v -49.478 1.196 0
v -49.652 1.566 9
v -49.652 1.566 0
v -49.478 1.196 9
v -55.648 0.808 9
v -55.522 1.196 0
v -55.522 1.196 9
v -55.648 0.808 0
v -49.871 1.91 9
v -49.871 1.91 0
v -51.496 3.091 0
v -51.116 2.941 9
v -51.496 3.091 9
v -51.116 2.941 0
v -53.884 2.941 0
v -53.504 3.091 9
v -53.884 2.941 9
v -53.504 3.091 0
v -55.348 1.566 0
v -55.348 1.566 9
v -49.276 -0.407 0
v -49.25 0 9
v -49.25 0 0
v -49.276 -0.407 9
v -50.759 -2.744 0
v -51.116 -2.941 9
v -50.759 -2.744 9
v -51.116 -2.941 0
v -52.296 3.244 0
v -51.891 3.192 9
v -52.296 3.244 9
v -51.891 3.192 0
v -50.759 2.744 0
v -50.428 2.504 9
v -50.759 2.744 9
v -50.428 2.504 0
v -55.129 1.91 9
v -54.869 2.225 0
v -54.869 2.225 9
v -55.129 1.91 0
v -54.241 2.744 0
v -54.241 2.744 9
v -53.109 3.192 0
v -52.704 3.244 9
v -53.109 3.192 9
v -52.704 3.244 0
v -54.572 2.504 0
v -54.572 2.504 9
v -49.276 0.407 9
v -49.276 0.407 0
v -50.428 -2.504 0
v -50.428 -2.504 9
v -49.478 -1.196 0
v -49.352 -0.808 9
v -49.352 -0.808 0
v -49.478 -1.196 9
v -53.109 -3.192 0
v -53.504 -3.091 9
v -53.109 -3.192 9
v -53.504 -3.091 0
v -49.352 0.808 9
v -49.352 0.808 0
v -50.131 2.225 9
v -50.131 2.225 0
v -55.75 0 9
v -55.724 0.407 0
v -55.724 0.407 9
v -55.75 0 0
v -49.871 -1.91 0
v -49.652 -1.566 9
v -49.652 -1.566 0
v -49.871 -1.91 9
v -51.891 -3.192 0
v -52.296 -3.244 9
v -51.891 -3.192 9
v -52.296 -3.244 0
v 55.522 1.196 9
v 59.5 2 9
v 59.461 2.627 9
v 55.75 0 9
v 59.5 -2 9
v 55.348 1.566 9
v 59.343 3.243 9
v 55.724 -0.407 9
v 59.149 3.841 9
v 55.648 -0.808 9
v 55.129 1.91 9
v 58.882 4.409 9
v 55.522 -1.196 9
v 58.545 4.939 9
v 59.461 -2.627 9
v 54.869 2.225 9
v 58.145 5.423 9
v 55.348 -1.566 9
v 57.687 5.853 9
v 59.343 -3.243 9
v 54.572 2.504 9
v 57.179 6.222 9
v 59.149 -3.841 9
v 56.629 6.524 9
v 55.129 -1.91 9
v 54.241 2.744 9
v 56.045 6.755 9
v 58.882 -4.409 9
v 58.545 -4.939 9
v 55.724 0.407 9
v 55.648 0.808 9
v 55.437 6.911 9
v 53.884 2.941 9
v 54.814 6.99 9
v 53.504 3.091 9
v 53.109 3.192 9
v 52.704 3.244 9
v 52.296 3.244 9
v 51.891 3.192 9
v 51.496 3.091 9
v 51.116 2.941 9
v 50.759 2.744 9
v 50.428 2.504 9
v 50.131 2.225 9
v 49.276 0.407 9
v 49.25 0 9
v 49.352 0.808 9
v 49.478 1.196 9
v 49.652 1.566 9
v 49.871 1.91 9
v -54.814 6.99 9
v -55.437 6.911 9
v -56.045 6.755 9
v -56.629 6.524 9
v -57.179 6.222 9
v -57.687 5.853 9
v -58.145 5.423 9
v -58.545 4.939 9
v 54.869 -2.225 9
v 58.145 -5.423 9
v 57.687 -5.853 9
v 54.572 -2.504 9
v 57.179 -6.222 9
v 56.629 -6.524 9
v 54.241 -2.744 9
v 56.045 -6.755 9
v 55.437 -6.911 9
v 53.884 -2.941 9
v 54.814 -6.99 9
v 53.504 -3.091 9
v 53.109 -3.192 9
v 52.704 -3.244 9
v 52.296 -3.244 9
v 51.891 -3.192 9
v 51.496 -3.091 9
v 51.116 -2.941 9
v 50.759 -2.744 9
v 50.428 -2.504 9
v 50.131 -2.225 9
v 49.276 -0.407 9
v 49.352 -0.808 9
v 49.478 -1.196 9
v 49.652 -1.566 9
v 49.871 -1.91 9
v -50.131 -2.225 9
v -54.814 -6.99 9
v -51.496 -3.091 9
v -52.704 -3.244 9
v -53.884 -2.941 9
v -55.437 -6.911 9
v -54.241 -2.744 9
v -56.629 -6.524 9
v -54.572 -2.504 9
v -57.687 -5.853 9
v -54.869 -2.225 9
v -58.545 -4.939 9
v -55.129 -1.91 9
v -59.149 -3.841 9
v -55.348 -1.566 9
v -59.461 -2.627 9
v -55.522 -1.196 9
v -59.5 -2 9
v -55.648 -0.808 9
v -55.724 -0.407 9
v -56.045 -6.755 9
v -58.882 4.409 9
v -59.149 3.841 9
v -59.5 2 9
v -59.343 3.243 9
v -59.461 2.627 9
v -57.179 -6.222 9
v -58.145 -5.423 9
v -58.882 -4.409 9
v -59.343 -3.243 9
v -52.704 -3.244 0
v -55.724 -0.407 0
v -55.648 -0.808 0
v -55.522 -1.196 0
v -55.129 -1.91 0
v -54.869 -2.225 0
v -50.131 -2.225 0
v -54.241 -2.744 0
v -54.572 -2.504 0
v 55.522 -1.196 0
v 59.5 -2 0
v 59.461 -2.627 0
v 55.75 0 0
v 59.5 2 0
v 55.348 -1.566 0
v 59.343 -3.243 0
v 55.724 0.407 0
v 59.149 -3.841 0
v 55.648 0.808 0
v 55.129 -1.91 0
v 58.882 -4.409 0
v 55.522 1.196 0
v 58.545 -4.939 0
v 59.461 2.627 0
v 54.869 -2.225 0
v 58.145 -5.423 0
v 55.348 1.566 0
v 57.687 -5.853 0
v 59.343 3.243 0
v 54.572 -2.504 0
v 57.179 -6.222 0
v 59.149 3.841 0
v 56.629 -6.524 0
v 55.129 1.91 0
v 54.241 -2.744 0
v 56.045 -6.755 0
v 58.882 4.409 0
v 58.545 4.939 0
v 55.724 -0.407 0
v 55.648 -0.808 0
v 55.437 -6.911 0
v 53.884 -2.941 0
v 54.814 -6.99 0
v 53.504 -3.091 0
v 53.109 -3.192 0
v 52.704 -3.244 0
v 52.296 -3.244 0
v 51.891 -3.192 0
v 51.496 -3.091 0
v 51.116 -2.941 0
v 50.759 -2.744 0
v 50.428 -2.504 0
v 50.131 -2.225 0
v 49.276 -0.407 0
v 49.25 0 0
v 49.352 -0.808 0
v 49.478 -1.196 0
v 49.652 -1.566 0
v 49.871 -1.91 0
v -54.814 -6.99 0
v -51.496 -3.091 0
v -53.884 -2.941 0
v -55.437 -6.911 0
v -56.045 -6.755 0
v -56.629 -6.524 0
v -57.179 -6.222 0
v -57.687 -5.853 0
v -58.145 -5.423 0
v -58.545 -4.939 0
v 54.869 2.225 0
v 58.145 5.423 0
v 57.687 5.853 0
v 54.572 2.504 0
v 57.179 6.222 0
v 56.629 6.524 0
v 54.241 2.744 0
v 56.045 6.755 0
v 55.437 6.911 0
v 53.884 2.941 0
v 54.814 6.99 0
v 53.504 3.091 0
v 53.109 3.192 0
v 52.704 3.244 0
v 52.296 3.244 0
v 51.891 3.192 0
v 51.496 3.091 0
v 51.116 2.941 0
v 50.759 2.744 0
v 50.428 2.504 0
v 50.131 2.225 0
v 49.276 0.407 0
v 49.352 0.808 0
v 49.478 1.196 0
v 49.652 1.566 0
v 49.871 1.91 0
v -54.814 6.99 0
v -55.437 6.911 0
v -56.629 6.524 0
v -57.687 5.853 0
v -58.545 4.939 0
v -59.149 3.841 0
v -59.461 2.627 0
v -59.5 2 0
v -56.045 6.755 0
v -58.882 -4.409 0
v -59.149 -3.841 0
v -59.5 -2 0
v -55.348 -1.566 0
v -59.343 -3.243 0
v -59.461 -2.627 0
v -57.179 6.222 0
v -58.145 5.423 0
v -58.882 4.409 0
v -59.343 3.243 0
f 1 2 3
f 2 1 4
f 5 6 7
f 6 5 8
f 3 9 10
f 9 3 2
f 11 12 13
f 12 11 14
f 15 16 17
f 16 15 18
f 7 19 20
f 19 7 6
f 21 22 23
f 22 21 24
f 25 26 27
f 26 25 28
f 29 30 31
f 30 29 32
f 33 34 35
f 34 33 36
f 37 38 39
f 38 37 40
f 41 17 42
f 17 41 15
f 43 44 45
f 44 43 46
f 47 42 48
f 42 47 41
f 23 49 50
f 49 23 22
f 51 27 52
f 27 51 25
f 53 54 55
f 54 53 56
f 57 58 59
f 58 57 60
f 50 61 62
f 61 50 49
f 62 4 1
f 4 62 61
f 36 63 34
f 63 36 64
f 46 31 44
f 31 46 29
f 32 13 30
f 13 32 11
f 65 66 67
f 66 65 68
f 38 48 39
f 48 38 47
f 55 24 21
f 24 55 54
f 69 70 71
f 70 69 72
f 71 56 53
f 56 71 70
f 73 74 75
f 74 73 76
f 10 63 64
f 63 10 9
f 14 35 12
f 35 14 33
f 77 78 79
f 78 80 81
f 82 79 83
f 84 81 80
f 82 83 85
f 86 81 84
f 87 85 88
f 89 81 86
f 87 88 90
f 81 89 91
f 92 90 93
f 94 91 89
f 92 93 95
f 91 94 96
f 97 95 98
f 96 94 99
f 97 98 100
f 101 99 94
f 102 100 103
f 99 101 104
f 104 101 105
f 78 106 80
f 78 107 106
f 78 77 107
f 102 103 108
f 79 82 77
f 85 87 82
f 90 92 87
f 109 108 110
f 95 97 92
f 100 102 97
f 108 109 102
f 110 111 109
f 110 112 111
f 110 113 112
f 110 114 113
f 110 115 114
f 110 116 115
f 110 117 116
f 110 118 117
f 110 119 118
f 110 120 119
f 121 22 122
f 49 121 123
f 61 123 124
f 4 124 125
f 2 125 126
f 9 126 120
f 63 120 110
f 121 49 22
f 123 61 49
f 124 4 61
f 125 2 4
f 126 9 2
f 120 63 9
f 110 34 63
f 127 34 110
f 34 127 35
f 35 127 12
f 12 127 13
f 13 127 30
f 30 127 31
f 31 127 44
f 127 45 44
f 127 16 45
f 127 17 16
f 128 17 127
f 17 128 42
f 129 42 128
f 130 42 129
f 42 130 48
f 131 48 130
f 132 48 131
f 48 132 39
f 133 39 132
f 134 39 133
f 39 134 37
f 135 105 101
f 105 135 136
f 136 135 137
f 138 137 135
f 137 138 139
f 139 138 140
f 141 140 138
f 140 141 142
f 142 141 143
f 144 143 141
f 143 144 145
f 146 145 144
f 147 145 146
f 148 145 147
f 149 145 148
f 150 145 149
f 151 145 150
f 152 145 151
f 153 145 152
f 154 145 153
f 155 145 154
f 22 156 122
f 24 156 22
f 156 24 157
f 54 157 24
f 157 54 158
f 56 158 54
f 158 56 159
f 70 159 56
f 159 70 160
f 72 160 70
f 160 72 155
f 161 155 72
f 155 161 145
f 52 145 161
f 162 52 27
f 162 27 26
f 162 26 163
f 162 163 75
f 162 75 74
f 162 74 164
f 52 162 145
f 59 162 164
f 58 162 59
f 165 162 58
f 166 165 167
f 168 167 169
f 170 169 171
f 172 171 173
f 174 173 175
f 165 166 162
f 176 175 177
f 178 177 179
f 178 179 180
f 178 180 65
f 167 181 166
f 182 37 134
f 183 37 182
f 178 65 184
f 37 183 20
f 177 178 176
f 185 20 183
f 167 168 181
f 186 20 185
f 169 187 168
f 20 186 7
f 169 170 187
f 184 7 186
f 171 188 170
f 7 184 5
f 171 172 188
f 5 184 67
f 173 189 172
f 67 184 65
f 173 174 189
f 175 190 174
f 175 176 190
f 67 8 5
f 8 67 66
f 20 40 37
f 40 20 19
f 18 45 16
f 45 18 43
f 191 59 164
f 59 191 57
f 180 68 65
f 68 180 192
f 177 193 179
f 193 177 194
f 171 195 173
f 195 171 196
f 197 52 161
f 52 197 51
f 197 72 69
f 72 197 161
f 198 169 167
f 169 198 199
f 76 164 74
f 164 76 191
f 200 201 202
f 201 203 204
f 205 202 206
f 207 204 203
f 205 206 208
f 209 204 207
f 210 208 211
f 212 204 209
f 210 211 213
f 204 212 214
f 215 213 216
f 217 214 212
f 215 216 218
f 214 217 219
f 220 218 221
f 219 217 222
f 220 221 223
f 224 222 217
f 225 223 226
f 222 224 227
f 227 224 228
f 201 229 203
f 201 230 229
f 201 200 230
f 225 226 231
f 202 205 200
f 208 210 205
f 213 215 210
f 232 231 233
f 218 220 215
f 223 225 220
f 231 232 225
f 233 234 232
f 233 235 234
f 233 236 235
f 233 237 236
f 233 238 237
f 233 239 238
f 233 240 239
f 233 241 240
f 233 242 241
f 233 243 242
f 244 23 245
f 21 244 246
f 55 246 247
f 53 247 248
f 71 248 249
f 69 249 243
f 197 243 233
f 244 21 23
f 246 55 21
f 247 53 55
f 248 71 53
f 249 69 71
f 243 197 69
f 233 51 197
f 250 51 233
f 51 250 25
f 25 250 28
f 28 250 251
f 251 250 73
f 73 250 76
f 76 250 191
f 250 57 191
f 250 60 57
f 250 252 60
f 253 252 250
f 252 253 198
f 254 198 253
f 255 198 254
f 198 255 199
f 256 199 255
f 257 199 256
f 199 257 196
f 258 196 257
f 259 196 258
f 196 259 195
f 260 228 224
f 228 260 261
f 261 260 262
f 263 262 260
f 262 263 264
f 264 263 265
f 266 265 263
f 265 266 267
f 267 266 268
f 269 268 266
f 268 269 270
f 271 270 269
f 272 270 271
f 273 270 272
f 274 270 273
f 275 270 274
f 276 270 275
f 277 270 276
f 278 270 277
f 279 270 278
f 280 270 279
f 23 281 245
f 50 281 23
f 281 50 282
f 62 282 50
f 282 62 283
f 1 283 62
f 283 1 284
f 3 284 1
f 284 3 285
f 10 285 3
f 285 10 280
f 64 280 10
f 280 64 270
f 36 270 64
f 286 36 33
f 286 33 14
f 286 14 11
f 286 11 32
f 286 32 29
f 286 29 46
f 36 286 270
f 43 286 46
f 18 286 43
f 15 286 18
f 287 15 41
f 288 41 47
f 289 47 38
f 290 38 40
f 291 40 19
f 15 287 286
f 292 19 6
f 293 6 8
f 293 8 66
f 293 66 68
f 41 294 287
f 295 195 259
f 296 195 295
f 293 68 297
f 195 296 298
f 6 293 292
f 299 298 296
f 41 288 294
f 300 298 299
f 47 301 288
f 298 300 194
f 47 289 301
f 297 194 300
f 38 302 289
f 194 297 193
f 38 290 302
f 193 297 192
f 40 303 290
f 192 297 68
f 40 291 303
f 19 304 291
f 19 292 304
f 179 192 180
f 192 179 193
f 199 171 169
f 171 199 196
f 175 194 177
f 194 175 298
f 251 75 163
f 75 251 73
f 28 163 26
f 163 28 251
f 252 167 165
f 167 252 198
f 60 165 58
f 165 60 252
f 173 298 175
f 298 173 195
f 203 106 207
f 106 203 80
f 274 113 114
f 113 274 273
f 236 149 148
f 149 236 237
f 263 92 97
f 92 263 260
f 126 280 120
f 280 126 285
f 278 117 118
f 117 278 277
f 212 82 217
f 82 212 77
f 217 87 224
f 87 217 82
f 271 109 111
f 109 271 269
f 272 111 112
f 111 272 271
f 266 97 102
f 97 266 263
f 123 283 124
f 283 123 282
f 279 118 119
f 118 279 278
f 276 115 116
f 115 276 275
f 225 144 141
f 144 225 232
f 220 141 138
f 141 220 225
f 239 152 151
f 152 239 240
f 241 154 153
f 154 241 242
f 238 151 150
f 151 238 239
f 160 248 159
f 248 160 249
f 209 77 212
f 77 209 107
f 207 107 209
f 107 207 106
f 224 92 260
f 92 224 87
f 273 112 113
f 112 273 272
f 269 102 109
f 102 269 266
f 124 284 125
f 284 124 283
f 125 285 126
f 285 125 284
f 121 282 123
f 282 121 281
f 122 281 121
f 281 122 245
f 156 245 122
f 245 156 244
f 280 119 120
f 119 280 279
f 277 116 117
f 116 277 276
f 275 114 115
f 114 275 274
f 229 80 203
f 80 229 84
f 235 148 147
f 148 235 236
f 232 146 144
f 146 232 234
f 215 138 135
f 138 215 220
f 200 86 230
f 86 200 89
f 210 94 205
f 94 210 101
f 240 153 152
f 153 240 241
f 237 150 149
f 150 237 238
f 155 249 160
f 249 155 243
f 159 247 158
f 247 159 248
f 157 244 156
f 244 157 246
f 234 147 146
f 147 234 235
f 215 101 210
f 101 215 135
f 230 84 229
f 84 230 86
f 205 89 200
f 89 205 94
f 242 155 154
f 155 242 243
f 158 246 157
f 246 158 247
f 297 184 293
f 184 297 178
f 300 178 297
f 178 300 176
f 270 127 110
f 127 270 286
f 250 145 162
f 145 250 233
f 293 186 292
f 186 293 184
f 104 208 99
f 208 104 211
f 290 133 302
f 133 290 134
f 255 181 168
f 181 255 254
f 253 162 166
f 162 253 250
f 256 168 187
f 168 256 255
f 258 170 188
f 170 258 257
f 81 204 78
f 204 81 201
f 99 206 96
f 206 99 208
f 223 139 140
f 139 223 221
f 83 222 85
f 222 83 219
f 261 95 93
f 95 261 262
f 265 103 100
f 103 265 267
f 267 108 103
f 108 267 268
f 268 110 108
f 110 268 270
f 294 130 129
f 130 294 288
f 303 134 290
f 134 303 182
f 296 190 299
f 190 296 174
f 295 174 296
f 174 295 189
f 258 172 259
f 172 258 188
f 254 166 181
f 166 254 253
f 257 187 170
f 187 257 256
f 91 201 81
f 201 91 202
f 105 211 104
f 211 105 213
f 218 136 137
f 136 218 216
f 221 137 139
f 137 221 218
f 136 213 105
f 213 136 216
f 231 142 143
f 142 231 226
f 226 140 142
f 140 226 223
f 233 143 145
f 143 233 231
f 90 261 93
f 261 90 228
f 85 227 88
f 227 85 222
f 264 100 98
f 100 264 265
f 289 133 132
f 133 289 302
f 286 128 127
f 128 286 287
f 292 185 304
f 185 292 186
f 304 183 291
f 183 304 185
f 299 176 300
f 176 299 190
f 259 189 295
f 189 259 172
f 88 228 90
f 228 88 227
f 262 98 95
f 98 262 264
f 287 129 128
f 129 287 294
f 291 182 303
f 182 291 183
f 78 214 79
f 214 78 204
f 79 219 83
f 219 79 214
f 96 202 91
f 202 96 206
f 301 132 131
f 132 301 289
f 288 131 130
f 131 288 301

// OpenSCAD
$fn = 50;


difference() {
	union() {
		hull() {
			translate(v = [-54.5000000000, 2.0000000000, 0]) {
				cylinder(h = 9, r = 5);
			}
			translate(v = [54.5000000000, 2.0000000000, 0]) {
				cylinder(h = 9, r = 5);
			}
			translate(v = [-54.5000000000, -2.0000000000, 0]) {
				cylinder(h = 9, r = 5);
			}
			translate(v = [54.5000000000, -2.0000000000, 0]) {
				cylinder(h = 9, r = 5);
			}
		}
	}
	union() {
		translate(v = [-52.5000000000, 0.0000000000, 0]) {
			cylinder(h = 9, r = 3.2500000000);
		}
		translate(v = [52.5000000000, 0.0000000000, 0]) {
			cylinder(h = 9, r = 3.2500000000);
		}
		translate(v = [-52.5000000000, 0.0000000000, 0]) {
			cylinder(h = 9, r = 1.8000000000);
		}
		translate(v = [52.5000000000, 0.0000000000, 0]) {
			cylinder(h = 9, r = 1.8000000000);
		}
		translate(v = [-52.5000000000, 0.0000000000, 0]) {
			cylinder(h = 9, r = 1.8000000000);
		}
		translate(v = [52.5000000000, 0.0000000000, 0]) {
			cylinder(h = 9, r = 1.8000000000);
		}
		translate(v = [-52.5000000000, 0.0000000000, 0]) {
			cylinder(h = 9, r = 1.8000000000);
		}
		translate(v = [52.5000000000, 0.0000000000, 0]) {
			cylinder(h = 9, r = 1.8000000000);
		}
	}
}
